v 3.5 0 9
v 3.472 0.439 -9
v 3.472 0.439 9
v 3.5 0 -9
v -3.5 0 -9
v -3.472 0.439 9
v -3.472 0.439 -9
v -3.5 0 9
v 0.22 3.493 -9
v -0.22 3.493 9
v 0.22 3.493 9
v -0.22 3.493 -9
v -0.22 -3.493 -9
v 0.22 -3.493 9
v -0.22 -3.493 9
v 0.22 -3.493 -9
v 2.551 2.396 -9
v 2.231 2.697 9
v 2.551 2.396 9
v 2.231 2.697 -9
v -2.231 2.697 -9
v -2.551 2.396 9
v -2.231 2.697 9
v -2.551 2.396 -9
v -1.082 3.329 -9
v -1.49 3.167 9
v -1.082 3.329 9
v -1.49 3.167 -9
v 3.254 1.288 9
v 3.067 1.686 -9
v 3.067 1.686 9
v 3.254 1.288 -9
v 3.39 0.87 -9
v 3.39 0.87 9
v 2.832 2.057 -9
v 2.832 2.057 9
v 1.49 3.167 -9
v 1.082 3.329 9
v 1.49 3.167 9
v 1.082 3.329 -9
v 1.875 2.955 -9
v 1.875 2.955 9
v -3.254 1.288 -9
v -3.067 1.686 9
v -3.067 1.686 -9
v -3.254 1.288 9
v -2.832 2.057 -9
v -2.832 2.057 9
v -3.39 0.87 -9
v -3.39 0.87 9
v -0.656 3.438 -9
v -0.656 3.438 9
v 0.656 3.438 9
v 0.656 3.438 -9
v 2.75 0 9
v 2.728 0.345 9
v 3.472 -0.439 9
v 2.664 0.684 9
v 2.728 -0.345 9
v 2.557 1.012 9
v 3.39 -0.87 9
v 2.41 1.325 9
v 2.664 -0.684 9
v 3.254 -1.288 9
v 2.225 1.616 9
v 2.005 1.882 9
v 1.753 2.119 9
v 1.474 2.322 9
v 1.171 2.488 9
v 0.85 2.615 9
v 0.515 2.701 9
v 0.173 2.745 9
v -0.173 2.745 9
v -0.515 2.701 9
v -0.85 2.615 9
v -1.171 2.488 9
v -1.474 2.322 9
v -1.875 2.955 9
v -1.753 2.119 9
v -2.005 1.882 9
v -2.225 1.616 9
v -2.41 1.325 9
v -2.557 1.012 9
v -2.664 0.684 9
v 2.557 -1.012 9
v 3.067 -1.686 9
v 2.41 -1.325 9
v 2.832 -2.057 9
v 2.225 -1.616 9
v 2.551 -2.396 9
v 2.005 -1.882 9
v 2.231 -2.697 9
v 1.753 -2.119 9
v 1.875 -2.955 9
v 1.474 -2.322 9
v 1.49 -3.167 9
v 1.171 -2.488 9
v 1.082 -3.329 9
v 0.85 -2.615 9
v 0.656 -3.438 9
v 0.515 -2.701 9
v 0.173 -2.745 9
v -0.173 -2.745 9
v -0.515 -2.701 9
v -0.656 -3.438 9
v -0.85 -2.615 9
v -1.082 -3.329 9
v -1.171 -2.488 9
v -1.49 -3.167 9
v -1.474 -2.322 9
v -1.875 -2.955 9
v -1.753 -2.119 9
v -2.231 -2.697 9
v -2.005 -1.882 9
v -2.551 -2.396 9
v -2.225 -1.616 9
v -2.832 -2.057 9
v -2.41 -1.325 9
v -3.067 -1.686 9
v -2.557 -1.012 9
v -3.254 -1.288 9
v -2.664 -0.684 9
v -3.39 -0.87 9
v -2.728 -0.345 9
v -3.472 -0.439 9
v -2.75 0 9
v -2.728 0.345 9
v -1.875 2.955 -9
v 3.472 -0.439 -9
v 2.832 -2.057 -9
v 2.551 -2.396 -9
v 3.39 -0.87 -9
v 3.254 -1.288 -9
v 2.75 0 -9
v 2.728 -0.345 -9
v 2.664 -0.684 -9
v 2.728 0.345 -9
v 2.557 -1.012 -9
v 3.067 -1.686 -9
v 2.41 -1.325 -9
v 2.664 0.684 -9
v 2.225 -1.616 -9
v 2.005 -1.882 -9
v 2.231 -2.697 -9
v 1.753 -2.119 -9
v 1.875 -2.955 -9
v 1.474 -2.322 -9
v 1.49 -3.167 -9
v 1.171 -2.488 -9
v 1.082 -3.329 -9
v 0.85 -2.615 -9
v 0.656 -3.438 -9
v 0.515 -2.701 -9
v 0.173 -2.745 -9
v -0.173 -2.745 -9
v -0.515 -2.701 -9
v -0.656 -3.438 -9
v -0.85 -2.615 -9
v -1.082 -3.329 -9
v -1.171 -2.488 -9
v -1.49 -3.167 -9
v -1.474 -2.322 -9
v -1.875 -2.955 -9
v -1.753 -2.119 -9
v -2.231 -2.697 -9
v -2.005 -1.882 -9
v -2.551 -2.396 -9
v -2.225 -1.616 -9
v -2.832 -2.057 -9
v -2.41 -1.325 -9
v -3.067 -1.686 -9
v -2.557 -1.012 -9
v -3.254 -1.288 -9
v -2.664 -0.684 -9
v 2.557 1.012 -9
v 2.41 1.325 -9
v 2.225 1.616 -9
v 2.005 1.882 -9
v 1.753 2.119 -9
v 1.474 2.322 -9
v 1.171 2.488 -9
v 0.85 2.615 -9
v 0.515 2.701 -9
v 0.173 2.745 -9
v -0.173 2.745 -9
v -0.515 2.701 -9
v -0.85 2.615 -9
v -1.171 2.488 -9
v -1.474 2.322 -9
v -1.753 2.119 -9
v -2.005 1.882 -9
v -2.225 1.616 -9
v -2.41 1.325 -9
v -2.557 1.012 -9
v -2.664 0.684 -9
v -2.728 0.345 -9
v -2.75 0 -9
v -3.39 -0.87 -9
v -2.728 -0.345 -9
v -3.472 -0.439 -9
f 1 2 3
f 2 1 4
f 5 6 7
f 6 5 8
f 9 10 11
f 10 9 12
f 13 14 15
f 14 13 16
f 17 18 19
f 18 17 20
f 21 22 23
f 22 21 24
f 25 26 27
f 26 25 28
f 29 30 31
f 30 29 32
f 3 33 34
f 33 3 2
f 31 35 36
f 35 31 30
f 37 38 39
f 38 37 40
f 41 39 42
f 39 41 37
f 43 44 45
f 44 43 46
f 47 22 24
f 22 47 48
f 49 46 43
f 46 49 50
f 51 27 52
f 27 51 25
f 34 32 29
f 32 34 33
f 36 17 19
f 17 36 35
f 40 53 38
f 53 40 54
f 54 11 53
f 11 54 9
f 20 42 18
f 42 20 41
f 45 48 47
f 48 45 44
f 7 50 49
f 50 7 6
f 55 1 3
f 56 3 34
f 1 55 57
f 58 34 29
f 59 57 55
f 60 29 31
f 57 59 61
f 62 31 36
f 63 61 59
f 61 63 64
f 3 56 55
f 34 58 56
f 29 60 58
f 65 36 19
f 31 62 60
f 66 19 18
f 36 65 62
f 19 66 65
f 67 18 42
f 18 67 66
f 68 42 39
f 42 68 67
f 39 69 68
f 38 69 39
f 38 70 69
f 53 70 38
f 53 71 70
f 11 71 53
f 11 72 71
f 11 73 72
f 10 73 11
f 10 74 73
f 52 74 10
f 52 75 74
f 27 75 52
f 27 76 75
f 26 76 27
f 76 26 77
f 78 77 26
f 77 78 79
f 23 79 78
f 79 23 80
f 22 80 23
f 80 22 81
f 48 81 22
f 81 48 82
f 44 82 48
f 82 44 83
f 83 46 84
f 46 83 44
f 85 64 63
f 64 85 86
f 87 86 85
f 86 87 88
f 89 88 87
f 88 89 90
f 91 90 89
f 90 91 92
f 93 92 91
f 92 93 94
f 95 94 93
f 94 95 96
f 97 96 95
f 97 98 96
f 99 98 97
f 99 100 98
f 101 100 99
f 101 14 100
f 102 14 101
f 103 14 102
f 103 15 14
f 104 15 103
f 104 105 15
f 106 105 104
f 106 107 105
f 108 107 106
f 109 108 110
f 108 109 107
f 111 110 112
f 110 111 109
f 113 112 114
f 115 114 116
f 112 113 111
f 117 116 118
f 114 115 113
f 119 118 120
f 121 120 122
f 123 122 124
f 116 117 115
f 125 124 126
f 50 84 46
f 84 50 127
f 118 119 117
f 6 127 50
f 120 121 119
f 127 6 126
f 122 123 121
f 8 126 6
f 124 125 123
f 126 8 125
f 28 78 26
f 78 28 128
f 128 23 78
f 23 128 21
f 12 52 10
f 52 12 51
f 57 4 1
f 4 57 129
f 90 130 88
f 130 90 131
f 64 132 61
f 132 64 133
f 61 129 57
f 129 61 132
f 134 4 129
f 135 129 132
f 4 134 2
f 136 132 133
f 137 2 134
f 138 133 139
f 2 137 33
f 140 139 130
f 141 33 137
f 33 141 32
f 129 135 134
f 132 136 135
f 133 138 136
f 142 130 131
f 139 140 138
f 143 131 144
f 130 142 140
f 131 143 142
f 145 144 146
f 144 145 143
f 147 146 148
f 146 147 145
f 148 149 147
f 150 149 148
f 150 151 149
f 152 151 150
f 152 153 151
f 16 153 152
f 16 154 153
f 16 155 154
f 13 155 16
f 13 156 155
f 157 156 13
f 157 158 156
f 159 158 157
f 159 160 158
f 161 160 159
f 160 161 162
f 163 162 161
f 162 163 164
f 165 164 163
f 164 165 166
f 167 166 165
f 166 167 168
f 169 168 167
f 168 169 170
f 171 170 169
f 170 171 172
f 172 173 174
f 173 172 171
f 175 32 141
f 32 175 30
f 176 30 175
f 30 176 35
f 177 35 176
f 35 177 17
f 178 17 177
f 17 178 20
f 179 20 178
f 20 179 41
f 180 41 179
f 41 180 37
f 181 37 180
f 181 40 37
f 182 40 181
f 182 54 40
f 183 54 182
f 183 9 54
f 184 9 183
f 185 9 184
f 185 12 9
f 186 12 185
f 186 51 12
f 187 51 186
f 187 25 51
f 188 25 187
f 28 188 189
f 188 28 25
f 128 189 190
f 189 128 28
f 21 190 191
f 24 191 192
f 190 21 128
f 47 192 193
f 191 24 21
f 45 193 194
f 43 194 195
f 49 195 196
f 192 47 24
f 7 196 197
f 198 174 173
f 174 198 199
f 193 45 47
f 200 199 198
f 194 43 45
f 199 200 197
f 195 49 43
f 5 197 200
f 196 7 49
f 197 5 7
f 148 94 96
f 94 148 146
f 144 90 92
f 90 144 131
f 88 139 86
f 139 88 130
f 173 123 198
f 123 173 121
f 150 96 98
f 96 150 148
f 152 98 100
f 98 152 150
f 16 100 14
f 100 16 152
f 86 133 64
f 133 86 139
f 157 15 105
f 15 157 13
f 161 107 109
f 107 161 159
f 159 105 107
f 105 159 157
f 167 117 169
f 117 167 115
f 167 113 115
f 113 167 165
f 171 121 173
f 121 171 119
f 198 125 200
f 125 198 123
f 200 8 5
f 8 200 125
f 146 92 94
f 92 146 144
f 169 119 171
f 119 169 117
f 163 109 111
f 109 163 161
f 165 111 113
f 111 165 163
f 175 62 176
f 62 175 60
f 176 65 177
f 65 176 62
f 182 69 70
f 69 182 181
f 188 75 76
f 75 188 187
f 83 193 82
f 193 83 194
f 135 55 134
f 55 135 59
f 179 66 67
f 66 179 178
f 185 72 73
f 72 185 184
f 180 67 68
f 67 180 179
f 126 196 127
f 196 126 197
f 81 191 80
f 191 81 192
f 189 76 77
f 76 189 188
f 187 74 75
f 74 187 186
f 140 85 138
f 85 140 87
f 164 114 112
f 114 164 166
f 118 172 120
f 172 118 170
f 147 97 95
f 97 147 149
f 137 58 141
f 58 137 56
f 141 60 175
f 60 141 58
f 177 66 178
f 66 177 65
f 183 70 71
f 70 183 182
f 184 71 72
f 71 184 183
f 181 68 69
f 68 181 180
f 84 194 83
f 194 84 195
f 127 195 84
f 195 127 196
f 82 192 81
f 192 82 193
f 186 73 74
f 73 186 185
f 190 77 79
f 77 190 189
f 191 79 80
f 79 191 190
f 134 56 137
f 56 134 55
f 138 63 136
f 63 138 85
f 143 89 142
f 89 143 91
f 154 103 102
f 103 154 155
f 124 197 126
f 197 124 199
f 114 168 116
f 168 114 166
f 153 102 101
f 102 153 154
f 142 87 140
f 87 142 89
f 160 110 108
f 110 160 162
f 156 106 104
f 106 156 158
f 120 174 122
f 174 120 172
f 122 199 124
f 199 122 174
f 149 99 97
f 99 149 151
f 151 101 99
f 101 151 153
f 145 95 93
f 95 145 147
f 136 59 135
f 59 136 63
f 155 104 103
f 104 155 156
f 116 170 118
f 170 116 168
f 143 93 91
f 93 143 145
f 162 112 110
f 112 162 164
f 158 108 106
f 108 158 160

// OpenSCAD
$fn = 50;


difference() {
	union() {
		translate(v = [0, 0, -9.0000000000]) {
			cylinder(h = 18, r = 3.5000000000);
		}
	}
	union() {
		translate(v = [0, 0, -100.0000000000]) {
			cylinder(h = 200, r = 2.7500000000);
		}
	}
}
